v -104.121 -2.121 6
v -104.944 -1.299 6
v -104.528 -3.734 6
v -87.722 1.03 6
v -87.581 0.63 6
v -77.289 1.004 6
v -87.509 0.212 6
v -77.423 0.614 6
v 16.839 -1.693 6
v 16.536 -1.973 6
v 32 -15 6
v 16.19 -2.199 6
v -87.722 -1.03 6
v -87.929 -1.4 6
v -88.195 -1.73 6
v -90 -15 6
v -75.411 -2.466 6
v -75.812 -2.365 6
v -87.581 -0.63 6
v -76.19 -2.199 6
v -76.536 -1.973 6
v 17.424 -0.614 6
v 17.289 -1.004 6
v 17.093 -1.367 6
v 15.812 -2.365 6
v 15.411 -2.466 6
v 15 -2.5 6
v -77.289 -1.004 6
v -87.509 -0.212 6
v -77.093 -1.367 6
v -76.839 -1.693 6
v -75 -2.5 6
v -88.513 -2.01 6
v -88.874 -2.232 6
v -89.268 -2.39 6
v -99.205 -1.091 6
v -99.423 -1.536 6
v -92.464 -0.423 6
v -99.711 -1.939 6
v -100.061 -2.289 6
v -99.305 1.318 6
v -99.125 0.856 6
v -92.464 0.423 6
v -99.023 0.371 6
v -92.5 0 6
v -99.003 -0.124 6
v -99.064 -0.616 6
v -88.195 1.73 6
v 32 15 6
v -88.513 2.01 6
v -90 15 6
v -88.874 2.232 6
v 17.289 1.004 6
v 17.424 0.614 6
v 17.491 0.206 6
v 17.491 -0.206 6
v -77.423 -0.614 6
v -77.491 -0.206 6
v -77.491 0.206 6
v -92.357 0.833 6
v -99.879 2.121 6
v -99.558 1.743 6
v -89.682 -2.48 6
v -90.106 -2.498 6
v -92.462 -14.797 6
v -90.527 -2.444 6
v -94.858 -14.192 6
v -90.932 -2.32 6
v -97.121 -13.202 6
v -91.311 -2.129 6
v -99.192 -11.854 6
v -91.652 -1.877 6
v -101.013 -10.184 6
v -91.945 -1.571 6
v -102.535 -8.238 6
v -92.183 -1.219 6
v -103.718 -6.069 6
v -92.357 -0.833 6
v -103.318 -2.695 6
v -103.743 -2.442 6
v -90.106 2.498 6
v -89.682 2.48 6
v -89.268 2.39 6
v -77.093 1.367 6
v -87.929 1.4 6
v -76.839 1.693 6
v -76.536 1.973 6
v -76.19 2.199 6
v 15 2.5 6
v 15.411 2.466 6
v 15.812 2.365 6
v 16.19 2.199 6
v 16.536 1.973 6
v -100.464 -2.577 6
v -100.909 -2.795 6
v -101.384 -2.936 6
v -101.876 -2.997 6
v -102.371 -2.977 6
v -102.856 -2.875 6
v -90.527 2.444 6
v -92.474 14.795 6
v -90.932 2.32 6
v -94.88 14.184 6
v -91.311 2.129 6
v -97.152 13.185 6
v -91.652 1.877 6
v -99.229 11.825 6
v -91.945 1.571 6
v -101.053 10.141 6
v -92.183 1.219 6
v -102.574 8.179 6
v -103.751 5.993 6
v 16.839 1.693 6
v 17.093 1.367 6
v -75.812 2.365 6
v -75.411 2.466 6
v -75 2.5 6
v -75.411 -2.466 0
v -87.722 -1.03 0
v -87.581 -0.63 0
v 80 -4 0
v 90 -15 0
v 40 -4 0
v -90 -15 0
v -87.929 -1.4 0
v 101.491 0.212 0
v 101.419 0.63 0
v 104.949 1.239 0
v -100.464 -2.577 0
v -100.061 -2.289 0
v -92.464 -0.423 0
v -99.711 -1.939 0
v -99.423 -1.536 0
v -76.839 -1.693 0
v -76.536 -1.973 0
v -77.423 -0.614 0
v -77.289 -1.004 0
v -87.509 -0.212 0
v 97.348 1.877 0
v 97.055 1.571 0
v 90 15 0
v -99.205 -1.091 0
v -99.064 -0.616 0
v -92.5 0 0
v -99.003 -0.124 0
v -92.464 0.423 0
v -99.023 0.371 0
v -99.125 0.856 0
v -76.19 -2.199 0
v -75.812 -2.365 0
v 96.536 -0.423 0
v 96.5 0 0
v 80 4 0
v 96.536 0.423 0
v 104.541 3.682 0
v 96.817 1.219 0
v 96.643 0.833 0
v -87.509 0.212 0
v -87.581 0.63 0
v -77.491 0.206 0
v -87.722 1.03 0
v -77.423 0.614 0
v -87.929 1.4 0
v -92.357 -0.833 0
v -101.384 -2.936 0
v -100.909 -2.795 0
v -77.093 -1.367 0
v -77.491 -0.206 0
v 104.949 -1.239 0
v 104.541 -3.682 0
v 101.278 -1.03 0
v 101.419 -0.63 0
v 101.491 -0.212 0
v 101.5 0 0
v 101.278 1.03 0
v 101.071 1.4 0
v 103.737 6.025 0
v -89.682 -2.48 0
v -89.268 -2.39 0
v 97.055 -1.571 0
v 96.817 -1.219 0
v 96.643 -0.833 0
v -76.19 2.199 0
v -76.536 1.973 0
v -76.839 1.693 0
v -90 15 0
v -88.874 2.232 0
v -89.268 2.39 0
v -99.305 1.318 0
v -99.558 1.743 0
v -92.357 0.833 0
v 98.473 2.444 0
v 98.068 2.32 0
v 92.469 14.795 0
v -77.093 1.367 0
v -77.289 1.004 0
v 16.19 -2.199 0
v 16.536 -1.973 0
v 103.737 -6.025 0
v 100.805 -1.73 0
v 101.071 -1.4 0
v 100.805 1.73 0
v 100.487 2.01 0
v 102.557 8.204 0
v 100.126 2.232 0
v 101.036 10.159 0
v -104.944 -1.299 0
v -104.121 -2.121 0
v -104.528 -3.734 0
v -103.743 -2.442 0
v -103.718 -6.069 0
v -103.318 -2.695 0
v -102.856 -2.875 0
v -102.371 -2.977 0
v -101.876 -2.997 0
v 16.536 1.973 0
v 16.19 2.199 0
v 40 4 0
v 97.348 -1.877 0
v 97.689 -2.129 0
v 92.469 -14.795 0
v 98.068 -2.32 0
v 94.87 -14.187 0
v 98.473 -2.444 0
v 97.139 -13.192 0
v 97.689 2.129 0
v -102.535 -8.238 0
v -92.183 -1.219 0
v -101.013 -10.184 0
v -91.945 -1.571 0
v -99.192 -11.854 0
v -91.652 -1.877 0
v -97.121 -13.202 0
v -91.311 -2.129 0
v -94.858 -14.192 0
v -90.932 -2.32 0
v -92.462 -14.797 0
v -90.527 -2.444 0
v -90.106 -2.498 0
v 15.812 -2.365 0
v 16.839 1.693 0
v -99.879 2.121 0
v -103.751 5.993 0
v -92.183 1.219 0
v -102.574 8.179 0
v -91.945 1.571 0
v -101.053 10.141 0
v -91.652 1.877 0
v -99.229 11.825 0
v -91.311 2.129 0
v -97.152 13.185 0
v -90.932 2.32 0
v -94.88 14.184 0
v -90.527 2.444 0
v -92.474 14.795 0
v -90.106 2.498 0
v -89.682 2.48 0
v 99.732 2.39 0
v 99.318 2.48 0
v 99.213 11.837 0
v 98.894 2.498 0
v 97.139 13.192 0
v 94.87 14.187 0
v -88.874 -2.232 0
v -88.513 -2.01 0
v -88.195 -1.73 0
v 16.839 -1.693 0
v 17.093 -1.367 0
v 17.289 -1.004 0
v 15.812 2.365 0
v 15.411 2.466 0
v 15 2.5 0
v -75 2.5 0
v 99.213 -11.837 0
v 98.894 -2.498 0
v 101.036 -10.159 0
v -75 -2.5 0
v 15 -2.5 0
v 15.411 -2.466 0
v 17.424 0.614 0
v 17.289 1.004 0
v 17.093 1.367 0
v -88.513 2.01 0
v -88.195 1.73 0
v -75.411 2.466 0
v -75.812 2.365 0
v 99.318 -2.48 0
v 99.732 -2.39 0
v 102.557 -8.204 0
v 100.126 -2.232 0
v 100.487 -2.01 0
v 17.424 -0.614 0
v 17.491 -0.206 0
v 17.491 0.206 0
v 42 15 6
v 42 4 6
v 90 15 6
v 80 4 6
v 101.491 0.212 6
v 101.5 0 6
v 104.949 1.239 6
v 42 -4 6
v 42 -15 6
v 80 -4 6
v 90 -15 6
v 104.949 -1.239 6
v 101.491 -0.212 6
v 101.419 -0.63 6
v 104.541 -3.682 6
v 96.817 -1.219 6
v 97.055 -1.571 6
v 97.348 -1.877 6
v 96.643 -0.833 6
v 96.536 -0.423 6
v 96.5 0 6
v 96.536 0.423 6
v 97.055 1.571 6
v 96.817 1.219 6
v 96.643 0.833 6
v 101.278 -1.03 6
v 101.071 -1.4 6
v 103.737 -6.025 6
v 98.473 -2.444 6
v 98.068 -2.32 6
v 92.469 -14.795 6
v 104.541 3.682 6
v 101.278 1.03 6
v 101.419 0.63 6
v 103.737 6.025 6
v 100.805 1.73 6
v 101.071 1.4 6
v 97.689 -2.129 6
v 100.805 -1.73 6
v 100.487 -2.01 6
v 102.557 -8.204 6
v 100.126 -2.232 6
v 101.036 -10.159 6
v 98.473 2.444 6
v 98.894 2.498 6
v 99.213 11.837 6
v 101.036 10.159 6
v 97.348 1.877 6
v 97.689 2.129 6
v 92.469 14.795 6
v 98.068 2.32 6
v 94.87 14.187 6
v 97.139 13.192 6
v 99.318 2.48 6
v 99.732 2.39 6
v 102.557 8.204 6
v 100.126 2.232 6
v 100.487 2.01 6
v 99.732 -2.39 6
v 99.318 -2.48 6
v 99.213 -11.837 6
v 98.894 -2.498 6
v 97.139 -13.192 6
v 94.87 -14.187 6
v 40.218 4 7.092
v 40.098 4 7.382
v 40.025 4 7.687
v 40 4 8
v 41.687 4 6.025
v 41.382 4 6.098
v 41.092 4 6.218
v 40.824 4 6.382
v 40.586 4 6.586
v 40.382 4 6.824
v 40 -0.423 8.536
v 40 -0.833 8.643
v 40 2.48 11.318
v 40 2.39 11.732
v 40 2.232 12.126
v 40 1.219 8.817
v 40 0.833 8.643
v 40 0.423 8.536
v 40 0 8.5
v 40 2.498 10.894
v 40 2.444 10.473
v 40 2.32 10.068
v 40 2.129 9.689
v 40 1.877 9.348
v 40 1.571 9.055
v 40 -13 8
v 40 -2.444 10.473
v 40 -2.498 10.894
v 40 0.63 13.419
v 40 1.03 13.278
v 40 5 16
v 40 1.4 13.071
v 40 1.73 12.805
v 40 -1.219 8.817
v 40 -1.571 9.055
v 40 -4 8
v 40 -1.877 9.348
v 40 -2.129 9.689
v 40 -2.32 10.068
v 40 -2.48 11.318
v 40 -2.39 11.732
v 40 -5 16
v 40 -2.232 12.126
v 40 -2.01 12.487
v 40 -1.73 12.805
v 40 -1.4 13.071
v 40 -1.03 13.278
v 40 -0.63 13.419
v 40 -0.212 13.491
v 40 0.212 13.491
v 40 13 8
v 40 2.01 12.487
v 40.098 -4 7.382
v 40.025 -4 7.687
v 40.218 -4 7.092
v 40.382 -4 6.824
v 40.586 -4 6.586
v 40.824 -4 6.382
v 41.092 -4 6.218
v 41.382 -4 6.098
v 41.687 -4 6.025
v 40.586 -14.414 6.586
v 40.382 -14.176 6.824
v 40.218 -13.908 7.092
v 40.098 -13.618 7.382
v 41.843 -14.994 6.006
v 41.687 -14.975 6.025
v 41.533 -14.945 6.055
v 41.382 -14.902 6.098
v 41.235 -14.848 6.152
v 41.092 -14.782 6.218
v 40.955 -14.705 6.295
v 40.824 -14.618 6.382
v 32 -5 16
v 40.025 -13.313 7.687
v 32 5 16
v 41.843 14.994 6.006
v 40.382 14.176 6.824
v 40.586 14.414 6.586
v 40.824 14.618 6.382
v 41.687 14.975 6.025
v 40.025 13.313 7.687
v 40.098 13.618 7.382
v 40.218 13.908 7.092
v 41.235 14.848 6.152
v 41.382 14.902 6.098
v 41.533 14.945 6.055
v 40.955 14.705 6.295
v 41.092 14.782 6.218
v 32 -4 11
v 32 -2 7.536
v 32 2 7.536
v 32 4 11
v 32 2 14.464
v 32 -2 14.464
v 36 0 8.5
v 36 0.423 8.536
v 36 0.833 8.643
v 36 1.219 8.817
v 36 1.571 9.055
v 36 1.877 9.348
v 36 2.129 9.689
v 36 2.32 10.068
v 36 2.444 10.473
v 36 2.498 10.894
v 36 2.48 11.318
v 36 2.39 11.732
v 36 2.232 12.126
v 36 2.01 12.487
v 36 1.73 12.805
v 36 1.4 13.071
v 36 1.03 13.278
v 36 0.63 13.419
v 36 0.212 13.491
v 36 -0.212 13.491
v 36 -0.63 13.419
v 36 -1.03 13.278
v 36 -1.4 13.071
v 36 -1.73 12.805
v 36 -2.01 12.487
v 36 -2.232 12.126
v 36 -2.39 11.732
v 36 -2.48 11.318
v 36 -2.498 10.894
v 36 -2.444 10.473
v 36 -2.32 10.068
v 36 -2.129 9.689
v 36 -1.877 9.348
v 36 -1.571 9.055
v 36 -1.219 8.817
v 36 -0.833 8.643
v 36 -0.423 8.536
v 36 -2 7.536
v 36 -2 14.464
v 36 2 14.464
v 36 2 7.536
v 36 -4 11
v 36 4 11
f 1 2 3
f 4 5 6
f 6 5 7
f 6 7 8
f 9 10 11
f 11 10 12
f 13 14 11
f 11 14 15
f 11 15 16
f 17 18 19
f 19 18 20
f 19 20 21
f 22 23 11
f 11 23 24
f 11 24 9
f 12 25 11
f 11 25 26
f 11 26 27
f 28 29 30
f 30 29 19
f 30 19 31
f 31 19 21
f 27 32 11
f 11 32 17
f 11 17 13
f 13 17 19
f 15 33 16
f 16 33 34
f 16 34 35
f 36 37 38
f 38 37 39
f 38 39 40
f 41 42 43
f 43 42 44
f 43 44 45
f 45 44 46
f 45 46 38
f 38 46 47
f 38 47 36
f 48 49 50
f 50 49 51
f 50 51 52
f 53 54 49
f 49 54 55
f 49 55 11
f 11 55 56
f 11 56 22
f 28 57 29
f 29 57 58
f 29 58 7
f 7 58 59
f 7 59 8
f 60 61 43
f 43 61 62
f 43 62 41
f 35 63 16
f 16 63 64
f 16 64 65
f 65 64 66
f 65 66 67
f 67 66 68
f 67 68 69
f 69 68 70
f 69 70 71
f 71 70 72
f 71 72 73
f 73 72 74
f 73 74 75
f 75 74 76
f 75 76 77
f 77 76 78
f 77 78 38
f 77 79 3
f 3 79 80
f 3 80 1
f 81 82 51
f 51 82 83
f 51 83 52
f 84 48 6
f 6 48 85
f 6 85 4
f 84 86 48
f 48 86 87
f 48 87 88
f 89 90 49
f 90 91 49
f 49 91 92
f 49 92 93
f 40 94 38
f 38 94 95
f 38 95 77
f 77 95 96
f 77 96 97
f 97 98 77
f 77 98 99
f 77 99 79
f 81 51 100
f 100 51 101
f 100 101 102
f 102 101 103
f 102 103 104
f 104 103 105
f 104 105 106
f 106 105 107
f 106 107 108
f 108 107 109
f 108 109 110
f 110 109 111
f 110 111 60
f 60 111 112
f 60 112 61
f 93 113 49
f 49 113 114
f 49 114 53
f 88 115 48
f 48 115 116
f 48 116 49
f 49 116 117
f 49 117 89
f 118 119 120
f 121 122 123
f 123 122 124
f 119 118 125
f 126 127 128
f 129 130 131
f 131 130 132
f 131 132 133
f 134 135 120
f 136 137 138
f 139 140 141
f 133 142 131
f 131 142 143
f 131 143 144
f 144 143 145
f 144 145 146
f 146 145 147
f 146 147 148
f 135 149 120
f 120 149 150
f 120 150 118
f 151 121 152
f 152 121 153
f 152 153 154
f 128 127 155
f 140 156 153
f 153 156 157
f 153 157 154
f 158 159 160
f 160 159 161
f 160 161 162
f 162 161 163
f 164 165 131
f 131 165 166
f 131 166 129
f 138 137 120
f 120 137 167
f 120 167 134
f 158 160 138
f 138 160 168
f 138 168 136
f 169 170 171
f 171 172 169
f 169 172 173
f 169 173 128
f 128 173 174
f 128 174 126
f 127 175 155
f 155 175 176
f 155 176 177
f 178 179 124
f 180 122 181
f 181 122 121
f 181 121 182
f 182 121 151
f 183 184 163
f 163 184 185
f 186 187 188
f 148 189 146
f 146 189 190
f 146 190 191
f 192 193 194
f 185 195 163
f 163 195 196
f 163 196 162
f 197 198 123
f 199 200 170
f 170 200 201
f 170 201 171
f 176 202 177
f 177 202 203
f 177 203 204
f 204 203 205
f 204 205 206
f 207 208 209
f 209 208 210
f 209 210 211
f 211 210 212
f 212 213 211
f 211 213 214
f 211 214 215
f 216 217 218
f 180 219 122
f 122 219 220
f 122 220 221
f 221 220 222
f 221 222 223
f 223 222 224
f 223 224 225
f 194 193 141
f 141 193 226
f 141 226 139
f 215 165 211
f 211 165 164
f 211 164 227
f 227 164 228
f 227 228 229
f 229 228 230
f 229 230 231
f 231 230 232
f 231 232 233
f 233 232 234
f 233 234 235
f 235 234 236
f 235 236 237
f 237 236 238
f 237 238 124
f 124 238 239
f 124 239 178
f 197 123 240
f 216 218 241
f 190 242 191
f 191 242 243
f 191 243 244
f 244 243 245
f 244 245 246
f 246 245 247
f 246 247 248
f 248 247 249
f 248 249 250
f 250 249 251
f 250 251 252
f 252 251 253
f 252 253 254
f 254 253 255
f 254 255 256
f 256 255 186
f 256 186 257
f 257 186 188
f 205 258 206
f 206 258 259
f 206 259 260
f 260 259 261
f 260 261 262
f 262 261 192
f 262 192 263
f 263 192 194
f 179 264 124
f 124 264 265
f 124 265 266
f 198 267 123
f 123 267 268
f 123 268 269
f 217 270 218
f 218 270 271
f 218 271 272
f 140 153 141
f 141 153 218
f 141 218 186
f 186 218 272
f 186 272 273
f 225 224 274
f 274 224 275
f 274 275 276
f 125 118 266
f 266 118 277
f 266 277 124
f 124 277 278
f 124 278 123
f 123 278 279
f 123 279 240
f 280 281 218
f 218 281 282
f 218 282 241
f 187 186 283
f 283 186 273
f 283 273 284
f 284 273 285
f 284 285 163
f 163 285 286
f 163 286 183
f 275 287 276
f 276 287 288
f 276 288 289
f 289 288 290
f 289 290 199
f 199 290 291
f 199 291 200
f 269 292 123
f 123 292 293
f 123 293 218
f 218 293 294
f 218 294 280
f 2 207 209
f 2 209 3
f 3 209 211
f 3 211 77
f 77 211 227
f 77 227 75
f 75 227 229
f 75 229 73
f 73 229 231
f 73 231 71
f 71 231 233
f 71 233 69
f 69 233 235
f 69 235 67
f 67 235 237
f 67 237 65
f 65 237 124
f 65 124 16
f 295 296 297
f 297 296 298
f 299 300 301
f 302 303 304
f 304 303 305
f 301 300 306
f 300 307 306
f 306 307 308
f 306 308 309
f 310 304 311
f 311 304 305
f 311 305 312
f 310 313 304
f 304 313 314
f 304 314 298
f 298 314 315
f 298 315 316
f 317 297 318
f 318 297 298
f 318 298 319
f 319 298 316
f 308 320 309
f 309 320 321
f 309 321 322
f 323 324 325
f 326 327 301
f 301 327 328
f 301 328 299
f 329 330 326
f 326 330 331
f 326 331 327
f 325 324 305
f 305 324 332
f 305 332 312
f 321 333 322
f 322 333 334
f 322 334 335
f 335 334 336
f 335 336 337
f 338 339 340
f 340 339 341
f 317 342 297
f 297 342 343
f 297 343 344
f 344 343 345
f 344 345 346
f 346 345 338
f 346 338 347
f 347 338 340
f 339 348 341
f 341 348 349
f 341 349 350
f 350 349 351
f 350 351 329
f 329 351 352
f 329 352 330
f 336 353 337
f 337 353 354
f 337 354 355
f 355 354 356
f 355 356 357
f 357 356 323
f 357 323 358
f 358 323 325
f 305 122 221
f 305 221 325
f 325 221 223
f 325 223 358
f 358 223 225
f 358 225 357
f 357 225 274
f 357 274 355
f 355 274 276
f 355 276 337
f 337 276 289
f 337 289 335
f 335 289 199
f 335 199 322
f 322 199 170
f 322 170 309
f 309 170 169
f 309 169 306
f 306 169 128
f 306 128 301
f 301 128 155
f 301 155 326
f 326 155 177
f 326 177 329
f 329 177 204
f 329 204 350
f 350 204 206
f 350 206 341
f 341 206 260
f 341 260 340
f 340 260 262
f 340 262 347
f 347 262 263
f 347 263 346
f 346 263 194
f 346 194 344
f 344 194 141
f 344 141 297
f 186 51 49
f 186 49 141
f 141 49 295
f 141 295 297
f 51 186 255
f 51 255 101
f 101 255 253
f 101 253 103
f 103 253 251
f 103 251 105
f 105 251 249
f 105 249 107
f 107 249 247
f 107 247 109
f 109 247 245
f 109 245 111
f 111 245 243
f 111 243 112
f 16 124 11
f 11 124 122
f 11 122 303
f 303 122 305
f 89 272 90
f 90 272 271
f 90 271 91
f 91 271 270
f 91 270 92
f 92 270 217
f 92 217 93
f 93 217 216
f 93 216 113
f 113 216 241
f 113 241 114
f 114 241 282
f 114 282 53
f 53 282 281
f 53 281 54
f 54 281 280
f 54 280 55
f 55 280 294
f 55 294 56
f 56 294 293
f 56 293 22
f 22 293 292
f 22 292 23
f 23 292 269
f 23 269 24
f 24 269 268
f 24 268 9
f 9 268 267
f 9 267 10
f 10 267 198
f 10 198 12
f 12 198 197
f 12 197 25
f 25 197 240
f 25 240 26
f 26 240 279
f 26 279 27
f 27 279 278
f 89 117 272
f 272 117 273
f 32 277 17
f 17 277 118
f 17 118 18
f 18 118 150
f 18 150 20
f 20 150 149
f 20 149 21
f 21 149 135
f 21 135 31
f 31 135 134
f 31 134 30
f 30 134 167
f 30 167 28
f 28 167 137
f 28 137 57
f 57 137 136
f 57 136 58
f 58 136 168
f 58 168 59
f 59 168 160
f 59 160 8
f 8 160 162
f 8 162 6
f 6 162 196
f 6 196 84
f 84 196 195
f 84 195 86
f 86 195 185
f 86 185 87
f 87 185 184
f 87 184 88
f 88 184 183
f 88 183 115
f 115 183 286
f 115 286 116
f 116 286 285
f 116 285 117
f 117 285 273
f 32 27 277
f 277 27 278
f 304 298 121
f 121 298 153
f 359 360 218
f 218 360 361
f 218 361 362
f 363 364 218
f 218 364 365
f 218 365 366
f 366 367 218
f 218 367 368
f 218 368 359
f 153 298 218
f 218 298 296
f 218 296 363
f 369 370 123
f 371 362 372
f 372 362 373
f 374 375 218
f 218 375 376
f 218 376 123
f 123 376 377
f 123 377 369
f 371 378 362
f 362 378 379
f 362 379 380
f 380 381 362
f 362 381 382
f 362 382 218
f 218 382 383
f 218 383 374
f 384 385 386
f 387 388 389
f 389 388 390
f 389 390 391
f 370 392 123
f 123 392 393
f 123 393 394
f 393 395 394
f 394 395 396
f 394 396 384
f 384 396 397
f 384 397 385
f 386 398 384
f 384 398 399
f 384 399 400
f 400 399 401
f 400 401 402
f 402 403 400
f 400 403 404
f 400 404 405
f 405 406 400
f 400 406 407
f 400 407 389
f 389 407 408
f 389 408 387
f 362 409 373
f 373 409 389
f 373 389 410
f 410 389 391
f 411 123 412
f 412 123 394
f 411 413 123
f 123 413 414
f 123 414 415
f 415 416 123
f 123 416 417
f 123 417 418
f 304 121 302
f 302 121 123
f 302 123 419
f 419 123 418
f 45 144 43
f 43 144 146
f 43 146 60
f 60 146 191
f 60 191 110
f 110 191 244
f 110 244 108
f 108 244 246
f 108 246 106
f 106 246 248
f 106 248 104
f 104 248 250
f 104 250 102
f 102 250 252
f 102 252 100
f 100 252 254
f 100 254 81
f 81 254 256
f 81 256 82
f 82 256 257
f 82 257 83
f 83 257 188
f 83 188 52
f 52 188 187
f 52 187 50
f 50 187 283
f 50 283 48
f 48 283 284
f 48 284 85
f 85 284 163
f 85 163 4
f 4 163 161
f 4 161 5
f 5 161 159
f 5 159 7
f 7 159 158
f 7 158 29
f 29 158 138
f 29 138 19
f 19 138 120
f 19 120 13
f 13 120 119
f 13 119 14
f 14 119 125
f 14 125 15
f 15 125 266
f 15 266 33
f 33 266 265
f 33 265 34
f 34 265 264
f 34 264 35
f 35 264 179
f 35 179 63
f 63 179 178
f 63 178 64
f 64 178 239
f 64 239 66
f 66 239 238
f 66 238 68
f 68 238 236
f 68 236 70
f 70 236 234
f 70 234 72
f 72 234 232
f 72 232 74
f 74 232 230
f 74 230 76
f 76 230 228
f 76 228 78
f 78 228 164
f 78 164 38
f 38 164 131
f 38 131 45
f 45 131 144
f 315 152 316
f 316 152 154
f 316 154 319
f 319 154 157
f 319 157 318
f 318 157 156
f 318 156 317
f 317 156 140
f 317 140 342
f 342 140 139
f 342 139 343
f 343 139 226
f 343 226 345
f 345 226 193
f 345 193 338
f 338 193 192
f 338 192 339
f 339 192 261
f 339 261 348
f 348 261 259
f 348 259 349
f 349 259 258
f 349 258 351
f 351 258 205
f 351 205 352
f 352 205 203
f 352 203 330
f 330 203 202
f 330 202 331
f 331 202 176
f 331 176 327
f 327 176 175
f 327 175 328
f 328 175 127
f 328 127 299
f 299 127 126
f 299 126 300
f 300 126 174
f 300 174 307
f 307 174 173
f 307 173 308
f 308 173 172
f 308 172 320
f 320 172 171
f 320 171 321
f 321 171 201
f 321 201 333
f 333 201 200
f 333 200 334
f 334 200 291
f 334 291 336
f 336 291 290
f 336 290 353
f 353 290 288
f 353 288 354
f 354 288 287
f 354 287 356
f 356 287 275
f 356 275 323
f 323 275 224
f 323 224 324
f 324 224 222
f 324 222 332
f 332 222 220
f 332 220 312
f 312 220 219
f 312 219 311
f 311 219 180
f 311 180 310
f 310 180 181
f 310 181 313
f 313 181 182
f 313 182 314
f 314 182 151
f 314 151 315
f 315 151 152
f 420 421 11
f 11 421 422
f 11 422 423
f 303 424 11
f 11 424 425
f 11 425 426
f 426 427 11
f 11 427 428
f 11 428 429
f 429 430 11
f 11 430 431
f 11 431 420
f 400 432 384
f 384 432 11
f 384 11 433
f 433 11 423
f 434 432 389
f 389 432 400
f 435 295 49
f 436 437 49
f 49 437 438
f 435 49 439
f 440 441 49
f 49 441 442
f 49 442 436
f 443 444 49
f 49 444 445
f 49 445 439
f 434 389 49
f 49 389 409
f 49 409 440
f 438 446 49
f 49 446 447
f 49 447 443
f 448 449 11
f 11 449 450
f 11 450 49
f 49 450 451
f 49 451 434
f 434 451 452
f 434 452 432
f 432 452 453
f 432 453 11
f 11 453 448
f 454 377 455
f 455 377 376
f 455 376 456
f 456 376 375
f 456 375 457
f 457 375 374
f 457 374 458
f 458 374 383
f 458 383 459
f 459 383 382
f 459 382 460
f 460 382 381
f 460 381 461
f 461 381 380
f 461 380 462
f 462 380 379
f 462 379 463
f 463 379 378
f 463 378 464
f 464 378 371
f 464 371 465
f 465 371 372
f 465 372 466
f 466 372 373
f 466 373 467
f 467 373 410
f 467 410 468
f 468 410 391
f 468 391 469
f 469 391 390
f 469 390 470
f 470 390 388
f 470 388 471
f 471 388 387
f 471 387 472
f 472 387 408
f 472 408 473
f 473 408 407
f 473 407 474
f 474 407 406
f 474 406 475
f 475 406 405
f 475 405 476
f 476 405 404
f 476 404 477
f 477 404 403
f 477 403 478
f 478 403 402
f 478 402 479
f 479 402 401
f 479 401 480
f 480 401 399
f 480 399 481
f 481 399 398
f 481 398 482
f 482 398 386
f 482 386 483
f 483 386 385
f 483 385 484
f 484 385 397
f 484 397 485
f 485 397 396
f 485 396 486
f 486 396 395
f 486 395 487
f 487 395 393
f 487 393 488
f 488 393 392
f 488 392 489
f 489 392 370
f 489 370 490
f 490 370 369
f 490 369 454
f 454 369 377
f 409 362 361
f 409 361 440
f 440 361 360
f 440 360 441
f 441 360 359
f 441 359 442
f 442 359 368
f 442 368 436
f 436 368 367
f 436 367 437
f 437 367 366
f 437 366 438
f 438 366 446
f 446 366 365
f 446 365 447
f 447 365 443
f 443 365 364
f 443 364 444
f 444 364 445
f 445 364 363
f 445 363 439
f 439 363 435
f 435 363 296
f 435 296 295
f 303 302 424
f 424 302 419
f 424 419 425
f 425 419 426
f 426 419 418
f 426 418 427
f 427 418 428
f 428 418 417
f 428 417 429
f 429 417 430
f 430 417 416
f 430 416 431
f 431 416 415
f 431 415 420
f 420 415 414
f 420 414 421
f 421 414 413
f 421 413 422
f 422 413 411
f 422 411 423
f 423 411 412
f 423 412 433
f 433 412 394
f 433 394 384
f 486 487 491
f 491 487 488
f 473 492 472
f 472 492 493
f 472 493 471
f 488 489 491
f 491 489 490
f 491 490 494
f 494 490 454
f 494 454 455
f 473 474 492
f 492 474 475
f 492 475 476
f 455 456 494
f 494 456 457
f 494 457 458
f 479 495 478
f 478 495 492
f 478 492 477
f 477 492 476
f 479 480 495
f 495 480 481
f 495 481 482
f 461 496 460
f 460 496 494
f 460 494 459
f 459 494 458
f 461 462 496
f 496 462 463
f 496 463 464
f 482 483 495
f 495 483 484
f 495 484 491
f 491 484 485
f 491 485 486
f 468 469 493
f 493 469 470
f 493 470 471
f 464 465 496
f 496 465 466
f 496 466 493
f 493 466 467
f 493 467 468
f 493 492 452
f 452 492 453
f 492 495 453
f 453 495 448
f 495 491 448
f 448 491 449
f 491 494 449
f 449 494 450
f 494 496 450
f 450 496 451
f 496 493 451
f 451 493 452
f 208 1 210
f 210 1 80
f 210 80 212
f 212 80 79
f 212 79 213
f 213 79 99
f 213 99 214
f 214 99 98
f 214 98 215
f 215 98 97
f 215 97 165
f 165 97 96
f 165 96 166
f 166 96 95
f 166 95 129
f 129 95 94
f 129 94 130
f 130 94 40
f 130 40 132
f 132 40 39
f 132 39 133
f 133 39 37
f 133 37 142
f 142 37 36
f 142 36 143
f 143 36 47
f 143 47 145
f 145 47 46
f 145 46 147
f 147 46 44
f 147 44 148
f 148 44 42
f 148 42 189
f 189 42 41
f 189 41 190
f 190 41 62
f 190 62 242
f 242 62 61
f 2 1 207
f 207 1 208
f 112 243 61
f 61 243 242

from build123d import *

# Parameters (mm, degrees)
ESQUISSE1_R             = 2.5
ESQUISSE1_W             = 40
ESQUISSE1_H             = 8
BOSS_EXTRU_1_DEPTH      = 6
ESQUISSE2_R             = 2.5
BOSS_EXTRU_2_DEPTH      = 8
CONG_2_R                = 2
ENL_V_MAT_EXTRU_1_DEPTH = 4
ENL_V_START             = -10
ENL_V_MAT_EXTRU_4_DEPTH = 10


with BuildPart() as part:
    # Esquisse1 → Boss.-Extru.1 (new body)
    with BuildSketch(Plane.XY):
        with BuildLine():
            Line((90, -15), (-90, -15))
            ThreePointArc((-90, -15), (-105, 0), (-90, 15))
            Line((-90, 15), (90, 15))
            ThreePointArc((90, 15), (105, 0), (90, -15))
        make_face()
        with Locations((99, 0)):
            Circle(ESQUISSE1_R, mode=Mode.SUBTRACT)
        with Locations(Location((-90, 0, 0), (0, 0, 180))):
            Circle(ESQUISSE1_R, mode=Mode.SUBTRACT)
        with BuildLine():
            Line((0, -2.5), (-75, -2.5))
            ThreePointArc((-75, -2.5), (-77.5, 0), (-75, 2.5))
            Line((-75, 2.5), (0, 2.5))
            Line((0, 2.5), (15, 2.5))
            ThreePointArc((15, 2.5), (17.5, 0), (15, -2.5))
            Line((15, -2.5), (0, -2.5))
        make_face(mode=Mode.SUBTRACT)
        with Locations((60, 0)):
            Rectangle(ESQUISSE1_W, ESQUISSE1_H, mode=Mode.SUBTRACT)
    extrude(amount=BOSS_EXTRU_1_DEPTH)

    # Esquisse2 → Boss.-Extru.2 (add)
    with BuildSketch(Plane(origin=(40, 0, 0), x_dir=(0, 0, -1), z_dir=(1, 0, 0))):
        Polygon((-16, 5), (-16, -5), (-6, -15), (-6, -5), (-6, 5), (-6, 15), align=None)
        with Locations((-11, 0)):
            Circle(ESQUISSE2_R, mode=Mode.SUBTRACT)
    extrude(amount=-BOSS_EXTRU_2_DEPTH)

    # Congé2
    cong_2_edges = [part.edges().sort_by_distance(p)[0] for p in [
        (40, 9.5, 6),
        (40, -9.5, 6),
    ]]
    fillet(cong_2_edges, radius=CONG_2_R)

    # Esquisse3 → Enlèv. mat.-Extru.1 (cut)
    with BuildSketch(Plane.ZY.offset(-32)):
        Polygon((11, 4), (14.464101615, 2), (14.464101615, -2), (11, -4), (7.535898385, -2), (7.535898385, 2), align=None)
    extrude(amount=-ENL_V_MAT_EXTRU_1_DEPTH, mode=Mode.SUBTRACT)

    # Esquisse4 → Enlèv. mat.-Extru.4 (cut)
    with BuildSketch(Plane.XY.offset(6).offset(ENL_V_START)):
        with BuildLine():
            ThreePointArc((-105, 0), (-104.771638598, -1.148050297), (-104.121320344, -2.121320344))
            Line((-104.121320344, -2.121320344), (-99.878679656, 2.121320344))
            ThreePointArc((-99.878679656, 2.121320344), (-103.148050297, 2.771638598), (-105, 0))
        make_face()
        with BuildLine():
            Line((-99.878679656, 2.121320344), (-104.121320344, -2.121320344))
            ThreePointArc((-104.121320344, -2.121320344), (-100.851949703, -2.771638598), (-99, 0))
            ThreePointArc((-99, 0), (-99.228361402, 1.148050297), (-99.878679656, 2.121320344))
        make_face()
        with BuildLine():
            ThreePointArc((-105, 0), (-103.148050297, 2.771638598), (-99.878679656, 2.121320344))
            Line((-99.878679656, 2.121320344), (-103.750652313, 5.993293))
            ThreePointArc((-103.750652313, 5.993293), (-104.68434174, 3.061063158), (-105, 0))
        make_face()
        with BuildLine():
            Line((-104.94364809, -1.298992597), (-104.121320344, -2.121320344))
            ThreePointArc((-104.121320344, -2.121320344), (-104.771638598, -1.148050297), (-105, 0))
            ThreePointArc((-105, 0), (-104.985905401, -0.650107165), (-104.94364809, -1.298992597))
        make_face()
        with BuildLine():
            ThreePointArc((-105, 0), (-104.771638598, -1.148050297), (-104.121320344, -2.121320344))
            Line((-104.121320344, -2.121320344), (-99.878679656, 2.121320344))
            ThreePointArc((-99.878679656, 2.121320344), (-103.148050297, 2.771638598), (-105, 0))
        make_face()
        with BuildLine():
            Line((-99.878679656, 2.121320344), (-104.121320344, -2.121320344))
            ThreePointArc((-104.121320344, -2.121320344), (-100.851949703, -2.771638598), (-99, 0))
            ThreePointArc((-99, 0), (-99.228361402, 1.148050297), (-99.878679656, 2.121320344))
        make_face()
    extrude(amount=ENL_V_MAT_EXTRU_4_DEPTH, mode=Mode.SUBTRACT)


solid = part.part
